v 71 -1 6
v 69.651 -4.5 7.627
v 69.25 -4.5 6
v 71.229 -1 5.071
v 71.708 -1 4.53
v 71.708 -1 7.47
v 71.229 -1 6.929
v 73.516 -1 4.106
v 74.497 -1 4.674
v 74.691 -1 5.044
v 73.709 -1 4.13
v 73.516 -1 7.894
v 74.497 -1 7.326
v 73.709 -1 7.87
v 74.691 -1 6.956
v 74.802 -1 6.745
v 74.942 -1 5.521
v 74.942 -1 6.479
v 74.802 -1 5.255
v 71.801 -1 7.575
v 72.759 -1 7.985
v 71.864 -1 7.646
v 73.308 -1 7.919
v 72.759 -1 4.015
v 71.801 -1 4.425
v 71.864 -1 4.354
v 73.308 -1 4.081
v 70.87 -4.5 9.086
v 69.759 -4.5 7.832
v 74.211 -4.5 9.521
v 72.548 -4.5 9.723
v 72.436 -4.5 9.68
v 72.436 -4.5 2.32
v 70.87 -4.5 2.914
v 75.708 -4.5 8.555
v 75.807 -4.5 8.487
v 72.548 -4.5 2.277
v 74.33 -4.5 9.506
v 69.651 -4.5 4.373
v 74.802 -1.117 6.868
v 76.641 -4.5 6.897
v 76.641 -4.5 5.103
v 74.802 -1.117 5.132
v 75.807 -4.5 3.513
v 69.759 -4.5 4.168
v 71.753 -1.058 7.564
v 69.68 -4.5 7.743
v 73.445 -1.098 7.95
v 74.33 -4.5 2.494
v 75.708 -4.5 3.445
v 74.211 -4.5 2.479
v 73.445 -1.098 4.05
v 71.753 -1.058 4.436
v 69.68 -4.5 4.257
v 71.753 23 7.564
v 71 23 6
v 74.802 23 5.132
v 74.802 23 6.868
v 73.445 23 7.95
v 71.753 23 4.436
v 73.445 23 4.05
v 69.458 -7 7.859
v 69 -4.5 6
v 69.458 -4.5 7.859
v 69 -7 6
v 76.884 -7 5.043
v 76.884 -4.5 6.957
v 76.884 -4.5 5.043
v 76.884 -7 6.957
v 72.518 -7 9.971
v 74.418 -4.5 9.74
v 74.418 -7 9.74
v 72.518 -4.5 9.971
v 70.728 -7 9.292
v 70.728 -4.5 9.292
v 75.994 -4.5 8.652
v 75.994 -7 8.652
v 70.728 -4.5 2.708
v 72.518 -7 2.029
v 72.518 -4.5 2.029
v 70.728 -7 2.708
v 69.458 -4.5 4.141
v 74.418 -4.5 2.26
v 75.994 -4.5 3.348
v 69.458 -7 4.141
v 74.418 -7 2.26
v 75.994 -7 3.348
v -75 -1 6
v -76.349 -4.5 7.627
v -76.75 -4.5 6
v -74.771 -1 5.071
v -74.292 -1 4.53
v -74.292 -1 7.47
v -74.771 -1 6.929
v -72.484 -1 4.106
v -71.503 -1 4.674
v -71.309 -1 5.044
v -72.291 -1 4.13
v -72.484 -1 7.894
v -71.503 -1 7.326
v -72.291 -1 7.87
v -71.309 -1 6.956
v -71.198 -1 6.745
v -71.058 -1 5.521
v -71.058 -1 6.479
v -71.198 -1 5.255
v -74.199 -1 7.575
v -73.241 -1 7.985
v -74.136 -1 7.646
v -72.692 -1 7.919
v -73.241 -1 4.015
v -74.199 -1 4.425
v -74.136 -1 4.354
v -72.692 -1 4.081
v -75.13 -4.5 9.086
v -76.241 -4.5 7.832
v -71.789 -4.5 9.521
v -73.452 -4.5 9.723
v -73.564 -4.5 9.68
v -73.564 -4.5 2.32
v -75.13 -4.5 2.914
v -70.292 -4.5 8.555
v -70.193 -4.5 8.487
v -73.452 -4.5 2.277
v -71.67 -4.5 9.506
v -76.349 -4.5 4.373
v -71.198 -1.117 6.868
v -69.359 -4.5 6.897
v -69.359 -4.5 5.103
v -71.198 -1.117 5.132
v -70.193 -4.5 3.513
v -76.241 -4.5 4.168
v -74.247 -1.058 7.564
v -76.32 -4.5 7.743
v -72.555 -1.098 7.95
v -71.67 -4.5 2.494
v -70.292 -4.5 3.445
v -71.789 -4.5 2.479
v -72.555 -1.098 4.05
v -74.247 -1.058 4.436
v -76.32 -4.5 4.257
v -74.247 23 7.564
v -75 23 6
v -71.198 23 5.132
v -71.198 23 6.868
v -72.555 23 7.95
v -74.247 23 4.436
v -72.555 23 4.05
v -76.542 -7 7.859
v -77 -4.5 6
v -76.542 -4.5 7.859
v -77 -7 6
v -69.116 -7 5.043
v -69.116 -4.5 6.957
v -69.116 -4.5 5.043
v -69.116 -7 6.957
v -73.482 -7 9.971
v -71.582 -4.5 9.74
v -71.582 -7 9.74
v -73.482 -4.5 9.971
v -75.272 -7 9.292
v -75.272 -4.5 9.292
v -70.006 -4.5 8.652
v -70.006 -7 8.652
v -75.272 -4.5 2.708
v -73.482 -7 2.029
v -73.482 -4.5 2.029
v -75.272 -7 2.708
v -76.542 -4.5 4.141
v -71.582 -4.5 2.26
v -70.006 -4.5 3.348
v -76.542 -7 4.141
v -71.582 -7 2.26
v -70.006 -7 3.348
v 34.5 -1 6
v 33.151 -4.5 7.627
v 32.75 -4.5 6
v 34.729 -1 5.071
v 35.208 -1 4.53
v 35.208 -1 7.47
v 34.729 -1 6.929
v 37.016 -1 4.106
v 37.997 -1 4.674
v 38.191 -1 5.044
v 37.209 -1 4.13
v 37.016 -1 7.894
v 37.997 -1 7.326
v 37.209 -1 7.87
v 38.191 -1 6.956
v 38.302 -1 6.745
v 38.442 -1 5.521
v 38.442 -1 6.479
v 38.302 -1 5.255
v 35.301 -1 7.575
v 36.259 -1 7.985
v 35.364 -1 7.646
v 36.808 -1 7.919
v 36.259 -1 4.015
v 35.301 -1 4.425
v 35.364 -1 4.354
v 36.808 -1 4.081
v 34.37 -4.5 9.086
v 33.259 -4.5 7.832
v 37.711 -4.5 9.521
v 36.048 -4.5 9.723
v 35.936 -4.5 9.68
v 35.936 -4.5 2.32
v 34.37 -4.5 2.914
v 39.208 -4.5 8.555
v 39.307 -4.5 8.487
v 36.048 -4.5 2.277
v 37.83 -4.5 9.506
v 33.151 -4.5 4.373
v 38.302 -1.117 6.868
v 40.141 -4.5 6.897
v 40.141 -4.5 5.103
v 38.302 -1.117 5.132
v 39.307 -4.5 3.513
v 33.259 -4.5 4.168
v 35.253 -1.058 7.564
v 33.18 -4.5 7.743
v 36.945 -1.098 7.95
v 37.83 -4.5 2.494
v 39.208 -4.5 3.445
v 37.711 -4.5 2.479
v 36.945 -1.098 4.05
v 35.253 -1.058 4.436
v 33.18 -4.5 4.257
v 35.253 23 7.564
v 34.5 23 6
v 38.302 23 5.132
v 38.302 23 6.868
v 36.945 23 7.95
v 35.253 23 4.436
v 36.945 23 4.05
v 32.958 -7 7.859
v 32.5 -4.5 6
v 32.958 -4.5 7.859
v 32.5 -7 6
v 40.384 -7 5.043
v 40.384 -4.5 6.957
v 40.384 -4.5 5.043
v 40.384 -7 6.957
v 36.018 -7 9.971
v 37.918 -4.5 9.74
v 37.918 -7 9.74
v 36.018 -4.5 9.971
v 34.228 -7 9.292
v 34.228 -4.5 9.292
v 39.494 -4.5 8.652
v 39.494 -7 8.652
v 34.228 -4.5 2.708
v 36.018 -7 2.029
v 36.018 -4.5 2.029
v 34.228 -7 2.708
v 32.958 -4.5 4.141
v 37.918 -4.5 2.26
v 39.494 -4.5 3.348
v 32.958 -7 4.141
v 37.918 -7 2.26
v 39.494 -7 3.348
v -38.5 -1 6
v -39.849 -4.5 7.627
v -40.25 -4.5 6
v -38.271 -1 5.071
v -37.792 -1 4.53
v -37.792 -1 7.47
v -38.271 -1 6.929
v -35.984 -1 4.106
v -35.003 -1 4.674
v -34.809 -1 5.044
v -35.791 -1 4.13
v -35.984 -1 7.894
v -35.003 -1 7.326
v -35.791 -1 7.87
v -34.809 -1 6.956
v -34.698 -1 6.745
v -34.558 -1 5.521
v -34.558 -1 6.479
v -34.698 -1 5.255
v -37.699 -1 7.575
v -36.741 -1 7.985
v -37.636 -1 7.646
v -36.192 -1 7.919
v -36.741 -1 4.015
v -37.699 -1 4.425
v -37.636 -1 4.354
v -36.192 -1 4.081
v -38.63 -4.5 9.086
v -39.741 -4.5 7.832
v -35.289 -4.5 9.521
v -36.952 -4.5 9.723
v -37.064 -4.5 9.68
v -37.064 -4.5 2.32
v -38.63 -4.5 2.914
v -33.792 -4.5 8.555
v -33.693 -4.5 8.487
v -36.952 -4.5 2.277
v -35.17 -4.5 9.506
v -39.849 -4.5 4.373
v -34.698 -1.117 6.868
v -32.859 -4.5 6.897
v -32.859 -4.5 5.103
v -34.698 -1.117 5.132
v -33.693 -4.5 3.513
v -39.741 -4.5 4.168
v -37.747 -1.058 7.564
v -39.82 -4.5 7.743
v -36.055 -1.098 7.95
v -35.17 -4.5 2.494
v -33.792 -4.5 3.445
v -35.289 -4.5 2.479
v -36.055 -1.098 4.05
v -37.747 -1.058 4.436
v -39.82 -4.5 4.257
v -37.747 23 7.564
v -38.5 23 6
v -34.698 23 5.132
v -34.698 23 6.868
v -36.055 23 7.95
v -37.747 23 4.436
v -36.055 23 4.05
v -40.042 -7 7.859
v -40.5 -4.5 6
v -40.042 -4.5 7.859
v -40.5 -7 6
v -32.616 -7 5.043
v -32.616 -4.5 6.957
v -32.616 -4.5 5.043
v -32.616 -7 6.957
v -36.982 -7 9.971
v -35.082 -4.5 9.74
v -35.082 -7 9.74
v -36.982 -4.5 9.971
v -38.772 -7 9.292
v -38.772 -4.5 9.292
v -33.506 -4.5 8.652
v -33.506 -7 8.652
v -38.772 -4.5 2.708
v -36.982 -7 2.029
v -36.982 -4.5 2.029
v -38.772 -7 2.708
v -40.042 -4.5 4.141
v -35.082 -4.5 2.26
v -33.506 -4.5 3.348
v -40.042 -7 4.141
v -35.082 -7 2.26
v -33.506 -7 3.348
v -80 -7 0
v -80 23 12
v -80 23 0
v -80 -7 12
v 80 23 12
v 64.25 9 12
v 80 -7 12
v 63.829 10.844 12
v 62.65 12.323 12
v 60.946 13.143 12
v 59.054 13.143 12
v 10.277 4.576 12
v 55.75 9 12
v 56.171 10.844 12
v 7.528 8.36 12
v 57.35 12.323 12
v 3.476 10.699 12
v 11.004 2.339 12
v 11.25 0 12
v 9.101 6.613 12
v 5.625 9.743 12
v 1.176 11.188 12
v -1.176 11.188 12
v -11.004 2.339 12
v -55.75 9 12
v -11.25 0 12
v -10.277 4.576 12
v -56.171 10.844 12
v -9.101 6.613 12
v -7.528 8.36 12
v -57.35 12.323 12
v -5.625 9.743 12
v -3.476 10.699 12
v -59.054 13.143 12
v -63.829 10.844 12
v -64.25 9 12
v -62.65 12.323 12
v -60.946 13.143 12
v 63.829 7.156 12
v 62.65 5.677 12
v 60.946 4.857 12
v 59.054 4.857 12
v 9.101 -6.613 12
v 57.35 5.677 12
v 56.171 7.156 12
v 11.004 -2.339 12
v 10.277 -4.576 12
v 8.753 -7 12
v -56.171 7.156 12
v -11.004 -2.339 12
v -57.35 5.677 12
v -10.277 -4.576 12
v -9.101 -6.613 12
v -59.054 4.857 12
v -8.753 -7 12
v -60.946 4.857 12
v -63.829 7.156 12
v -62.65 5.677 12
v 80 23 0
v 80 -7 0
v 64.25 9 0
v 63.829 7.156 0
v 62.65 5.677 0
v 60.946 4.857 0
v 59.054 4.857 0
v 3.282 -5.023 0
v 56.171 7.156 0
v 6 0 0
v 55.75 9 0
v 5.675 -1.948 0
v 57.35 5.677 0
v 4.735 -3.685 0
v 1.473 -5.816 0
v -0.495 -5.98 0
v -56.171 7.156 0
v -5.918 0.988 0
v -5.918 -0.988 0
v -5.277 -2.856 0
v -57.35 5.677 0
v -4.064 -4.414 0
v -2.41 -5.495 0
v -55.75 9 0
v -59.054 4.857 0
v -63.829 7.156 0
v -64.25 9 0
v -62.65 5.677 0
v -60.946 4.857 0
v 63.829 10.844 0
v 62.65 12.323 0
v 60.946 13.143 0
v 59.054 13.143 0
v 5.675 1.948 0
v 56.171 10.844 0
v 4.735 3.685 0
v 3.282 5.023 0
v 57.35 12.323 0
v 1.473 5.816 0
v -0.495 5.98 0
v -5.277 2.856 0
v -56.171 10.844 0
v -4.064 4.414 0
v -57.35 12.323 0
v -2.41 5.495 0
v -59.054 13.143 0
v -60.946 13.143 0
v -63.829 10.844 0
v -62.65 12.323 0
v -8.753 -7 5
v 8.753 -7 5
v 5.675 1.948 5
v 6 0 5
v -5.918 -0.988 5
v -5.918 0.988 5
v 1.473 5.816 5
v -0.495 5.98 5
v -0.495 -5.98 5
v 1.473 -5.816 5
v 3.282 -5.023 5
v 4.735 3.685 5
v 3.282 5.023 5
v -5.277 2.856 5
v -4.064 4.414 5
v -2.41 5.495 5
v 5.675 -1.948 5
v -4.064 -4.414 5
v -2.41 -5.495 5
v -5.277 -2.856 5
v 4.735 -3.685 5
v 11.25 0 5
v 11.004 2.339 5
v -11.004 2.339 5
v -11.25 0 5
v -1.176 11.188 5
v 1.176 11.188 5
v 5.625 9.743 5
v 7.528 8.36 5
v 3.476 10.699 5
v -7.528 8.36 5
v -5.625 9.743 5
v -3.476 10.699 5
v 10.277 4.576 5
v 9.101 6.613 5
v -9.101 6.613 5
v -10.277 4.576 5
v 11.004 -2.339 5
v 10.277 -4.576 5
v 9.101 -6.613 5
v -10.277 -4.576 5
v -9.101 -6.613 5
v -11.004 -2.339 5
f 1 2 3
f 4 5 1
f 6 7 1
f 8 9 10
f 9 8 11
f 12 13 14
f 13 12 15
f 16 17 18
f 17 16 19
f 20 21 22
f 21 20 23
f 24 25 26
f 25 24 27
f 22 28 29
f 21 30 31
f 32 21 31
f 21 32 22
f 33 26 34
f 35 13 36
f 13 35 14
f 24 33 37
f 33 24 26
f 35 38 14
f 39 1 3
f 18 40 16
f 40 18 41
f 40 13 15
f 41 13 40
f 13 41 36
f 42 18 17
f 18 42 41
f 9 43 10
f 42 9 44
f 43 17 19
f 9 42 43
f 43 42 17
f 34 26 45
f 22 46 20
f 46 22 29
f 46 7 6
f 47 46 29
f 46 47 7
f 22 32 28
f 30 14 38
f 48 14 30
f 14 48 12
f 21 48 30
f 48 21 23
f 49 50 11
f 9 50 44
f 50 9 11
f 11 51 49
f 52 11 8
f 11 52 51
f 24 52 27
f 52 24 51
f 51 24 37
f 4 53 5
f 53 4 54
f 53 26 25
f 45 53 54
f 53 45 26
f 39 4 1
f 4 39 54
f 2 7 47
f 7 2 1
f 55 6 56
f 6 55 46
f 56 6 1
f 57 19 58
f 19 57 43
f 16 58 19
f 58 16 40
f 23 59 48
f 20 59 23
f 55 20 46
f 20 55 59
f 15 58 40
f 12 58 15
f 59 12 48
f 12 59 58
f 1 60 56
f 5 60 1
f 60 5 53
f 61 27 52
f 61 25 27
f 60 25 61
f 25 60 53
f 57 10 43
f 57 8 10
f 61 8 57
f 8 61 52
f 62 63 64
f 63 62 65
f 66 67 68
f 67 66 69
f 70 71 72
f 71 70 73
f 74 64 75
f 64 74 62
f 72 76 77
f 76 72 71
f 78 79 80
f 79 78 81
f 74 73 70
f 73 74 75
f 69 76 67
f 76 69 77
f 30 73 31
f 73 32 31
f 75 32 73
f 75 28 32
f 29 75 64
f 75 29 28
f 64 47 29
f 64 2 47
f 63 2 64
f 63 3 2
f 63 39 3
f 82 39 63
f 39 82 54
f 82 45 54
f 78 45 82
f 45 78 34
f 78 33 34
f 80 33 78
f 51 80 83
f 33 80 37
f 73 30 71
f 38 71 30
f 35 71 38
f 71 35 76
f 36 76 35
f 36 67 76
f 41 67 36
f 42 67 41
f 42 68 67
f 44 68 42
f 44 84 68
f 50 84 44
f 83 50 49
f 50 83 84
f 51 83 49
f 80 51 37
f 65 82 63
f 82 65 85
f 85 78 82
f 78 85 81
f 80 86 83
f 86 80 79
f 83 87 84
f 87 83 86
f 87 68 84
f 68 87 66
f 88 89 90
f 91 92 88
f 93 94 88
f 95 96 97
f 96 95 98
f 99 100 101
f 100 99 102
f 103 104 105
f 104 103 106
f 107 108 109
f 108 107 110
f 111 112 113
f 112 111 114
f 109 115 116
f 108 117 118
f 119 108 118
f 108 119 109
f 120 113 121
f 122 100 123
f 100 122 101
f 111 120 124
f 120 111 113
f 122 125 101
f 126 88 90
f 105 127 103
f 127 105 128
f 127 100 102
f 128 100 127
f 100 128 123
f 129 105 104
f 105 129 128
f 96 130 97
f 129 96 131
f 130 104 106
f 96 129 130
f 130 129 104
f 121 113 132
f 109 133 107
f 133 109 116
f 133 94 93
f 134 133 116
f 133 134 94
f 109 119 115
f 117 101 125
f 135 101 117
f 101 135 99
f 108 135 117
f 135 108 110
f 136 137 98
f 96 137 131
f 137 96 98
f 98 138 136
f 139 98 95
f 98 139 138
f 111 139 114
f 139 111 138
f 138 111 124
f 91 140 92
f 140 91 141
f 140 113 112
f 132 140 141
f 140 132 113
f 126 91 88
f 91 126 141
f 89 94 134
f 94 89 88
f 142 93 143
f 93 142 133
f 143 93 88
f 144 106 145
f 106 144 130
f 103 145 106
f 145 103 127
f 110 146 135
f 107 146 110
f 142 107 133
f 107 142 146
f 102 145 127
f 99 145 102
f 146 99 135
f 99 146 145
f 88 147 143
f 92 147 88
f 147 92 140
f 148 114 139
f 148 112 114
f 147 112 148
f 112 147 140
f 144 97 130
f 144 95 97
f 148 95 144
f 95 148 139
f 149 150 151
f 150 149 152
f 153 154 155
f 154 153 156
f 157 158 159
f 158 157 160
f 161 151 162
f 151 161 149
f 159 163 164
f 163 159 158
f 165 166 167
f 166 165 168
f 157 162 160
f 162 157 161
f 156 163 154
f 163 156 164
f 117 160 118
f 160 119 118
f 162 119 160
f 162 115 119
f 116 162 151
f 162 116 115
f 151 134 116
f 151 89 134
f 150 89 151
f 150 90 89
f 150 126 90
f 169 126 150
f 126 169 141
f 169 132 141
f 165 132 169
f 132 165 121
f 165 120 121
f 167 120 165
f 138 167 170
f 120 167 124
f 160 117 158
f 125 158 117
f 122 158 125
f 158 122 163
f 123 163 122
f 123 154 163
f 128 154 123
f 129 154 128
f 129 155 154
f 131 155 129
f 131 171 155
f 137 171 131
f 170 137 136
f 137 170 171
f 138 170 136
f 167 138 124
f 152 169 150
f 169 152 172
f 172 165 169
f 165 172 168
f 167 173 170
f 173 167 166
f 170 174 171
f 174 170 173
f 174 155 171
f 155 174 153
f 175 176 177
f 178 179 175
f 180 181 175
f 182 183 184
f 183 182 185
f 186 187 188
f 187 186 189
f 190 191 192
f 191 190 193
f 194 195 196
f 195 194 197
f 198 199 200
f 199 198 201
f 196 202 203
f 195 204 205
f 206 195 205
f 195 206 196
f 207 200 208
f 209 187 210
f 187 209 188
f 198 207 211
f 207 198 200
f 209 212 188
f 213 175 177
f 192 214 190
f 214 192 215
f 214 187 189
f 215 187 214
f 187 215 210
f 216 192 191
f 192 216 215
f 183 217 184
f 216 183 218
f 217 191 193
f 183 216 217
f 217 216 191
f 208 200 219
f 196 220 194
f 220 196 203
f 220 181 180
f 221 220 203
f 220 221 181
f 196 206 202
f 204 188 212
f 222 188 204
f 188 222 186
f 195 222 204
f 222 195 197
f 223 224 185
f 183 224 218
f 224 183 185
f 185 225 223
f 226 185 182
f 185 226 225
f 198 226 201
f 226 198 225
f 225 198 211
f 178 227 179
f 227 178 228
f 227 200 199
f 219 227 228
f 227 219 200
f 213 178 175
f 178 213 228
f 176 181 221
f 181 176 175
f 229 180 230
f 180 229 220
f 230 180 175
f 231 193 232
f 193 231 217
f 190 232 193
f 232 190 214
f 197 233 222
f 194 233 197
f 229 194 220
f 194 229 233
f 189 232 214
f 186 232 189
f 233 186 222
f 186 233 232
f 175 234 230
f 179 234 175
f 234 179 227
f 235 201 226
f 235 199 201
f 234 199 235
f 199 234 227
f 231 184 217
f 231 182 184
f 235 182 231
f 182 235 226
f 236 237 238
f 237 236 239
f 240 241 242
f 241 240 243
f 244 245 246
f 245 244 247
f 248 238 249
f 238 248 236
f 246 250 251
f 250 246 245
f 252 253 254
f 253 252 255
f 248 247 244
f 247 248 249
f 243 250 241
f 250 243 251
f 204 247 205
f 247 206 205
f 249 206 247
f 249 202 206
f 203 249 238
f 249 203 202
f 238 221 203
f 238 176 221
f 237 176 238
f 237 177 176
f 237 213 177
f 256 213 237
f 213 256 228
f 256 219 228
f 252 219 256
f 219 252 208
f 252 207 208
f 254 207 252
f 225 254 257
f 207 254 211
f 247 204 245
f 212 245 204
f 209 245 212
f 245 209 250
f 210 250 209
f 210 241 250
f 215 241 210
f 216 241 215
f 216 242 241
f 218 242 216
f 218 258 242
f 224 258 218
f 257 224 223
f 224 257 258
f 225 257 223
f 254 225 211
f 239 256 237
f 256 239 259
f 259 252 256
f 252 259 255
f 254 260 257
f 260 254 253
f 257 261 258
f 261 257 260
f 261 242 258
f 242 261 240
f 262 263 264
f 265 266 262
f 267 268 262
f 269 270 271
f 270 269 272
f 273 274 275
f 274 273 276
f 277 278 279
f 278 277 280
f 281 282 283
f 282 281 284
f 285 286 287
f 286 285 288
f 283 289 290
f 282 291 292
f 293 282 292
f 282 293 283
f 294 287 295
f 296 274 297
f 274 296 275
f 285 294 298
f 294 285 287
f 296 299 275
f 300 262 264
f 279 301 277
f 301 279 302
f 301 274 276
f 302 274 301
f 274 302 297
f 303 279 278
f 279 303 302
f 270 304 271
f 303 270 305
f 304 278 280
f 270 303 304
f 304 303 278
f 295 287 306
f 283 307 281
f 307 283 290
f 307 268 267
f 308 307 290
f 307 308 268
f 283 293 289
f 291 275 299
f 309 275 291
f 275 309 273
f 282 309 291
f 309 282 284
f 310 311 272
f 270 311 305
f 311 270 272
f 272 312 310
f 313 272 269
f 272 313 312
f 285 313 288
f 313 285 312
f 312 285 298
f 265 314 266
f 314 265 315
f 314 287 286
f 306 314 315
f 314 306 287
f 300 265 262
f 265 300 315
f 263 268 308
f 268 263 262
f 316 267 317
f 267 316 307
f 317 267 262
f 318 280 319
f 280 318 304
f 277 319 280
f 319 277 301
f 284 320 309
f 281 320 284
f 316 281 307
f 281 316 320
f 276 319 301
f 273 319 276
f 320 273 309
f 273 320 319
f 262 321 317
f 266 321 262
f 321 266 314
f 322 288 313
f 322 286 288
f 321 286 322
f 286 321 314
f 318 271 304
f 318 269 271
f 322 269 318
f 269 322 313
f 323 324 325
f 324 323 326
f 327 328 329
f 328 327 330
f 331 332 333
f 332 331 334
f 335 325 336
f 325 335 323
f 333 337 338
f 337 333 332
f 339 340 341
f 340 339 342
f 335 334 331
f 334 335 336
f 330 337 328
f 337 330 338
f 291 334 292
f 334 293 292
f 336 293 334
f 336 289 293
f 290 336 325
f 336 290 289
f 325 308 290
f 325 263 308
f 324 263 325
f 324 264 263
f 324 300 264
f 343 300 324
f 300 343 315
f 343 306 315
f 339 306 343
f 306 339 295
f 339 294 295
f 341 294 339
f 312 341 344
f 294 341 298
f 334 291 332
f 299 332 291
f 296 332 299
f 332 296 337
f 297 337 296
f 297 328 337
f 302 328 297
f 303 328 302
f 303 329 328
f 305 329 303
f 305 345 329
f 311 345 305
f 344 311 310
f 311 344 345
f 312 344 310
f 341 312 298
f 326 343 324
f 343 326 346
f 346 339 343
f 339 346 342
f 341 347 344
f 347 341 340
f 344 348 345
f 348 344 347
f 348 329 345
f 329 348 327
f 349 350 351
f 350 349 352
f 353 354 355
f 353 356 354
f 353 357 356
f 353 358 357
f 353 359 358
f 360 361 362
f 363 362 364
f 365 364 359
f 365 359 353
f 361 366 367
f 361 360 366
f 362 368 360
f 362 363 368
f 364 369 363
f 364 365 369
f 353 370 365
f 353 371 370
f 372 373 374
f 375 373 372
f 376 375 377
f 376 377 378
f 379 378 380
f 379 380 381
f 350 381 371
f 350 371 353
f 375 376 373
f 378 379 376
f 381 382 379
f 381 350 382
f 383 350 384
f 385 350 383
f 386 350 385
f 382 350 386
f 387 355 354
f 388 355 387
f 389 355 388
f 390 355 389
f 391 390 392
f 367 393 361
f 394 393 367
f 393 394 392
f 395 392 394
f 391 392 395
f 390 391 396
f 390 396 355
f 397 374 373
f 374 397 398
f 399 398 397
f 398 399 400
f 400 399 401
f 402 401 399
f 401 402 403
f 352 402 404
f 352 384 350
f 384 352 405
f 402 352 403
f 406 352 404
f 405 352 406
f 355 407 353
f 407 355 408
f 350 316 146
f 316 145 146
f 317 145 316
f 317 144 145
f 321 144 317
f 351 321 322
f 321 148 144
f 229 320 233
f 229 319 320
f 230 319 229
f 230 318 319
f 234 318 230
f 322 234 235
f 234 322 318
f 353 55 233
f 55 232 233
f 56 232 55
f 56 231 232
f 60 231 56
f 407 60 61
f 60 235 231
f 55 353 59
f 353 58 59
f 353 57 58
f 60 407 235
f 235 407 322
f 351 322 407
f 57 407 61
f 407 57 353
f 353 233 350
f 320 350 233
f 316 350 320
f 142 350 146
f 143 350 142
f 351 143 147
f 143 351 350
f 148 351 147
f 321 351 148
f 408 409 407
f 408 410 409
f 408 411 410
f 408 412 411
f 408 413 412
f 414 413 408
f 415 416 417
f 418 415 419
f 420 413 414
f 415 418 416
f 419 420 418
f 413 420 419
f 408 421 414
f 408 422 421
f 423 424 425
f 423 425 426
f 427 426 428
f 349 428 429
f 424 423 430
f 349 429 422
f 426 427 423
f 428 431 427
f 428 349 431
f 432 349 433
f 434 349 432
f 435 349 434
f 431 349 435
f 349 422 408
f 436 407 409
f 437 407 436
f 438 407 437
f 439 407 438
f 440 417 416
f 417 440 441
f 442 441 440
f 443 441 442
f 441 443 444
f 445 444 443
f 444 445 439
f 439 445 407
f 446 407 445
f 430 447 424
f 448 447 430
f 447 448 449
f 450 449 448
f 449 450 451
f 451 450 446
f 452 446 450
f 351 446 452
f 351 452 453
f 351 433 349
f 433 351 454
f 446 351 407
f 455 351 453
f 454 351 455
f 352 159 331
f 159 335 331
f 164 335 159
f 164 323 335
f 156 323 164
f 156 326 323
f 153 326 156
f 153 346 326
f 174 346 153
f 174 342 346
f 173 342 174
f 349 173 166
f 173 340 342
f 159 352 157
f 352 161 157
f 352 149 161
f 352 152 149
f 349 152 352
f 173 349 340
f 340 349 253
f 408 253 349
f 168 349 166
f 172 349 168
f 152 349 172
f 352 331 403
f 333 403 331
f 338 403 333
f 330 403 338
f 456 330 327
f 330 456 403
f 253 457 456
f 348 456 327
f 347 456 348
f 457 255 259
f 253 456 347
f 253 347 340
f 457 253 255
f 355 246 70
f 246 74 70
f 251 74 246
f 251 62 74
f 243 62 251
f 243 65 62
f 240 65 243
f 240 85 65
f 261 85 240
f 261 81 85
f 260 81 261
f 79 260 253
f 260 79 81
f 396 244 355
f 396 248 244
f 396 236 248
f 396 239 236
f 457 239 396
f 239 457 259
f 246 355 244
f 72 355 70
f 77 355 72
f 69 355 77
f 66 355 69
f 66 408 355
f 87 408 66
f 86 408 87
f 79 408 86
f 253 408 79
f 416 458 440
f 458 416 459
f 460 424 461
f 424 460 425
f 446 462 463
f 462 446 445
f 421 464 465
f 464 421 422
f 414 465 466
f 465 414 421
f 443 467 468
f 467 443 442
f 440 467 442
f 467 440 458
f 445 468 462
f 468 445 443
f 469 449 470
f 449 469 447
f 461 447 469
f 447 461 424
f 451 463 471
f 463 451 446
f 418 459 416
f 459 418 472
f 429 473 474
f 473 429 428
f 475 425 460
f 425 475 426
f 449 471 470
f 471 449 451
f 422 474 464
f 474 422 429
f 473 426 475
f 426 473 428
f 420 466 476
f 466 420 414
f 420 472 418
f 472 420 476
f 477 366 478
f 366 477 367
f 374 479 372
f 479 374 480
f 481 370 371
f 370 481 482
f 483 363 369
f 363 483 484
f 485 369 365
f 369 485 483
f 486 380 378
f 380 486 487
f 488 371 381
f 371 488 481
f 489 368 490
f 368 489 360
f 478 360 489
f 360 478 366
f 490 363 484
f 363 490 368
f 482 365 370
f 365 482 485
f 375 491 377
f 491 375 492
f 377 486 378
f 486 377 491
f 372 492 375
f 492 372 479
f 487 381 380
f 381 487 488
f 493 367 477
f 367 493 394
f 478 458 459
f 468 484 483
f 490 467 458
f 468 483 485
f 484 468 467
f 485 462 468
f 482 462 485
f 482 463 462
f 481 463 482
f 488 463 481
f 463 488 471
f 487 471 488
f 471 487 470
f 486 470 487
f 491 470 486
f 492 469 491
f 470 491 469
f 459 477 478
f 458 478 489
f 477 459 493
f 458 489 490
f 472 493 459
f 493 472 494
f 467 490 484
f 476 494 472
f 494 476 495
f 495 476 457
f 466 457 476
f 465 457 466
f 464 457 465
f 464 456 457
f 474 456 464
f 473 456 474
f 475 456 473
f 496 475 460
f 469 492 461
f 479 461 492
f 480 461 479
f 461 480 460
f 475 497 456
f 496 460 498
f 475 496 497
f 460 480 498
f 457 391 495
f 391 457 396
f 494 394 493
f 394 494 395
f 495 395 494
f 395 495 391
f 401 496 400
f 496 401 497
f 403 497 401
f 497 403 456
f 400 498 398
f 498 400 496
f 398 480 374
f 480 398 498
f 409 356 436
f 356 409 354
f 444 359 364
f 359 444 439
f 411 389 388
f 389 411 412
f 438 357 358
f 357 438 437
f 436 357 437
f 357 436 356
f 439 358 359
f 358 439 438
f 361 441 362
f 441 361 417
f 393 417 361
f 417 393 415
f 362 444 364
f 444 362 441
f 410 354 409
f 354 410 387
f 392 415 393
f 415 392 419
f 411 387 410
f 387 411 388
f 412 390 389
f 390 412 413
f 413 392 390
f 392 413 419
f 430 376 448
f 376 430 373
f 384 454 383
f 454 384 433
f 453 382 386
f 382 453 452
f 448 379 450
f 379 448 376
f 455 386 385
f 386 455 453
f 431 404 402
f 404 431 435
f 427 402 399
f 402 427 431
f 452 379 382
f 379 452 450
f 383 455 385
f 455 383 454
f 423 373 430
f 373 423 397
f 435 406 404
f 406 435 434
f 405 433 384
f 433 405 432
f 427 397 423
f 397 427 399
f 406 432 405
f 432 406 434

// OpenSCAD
//translate([18.92,-43.05,0])import("arriba.stl");
difference(){
translate([-160/2,-7,0])cube([160,30,12]);
translate([0,0,-5])cylinder(r=12/2,h=30);
translate([0,0,5])cylinder(r=22.5/2,h=30);

translate([60,9,-5])color("red")cylinder(r=8.5/2,h=30);
translate([-60,9,-5])color("red")cylinder(r=8.5/2,h=30);
translate([73,-5,6])rotate([0,0,180])color("red")tornillo();
translate([-73,-5,6])rotate([0,0,180])color("red")tornillo();
translate([73/2,-5,6])rotate([0,0,180])color("red")tornillo();
translate([-73/2,-5,6])rotate([0,0,180])color("red")tornillo();

}

module tornillo(){
rotate([90,0,0]){
cylinder(r1=8/2,r2=4/2,h=4);
cylinder(r=4/2,h=50);
translate([0,0,-9.5])cylinder(r=8/2,h=10);
}
}
